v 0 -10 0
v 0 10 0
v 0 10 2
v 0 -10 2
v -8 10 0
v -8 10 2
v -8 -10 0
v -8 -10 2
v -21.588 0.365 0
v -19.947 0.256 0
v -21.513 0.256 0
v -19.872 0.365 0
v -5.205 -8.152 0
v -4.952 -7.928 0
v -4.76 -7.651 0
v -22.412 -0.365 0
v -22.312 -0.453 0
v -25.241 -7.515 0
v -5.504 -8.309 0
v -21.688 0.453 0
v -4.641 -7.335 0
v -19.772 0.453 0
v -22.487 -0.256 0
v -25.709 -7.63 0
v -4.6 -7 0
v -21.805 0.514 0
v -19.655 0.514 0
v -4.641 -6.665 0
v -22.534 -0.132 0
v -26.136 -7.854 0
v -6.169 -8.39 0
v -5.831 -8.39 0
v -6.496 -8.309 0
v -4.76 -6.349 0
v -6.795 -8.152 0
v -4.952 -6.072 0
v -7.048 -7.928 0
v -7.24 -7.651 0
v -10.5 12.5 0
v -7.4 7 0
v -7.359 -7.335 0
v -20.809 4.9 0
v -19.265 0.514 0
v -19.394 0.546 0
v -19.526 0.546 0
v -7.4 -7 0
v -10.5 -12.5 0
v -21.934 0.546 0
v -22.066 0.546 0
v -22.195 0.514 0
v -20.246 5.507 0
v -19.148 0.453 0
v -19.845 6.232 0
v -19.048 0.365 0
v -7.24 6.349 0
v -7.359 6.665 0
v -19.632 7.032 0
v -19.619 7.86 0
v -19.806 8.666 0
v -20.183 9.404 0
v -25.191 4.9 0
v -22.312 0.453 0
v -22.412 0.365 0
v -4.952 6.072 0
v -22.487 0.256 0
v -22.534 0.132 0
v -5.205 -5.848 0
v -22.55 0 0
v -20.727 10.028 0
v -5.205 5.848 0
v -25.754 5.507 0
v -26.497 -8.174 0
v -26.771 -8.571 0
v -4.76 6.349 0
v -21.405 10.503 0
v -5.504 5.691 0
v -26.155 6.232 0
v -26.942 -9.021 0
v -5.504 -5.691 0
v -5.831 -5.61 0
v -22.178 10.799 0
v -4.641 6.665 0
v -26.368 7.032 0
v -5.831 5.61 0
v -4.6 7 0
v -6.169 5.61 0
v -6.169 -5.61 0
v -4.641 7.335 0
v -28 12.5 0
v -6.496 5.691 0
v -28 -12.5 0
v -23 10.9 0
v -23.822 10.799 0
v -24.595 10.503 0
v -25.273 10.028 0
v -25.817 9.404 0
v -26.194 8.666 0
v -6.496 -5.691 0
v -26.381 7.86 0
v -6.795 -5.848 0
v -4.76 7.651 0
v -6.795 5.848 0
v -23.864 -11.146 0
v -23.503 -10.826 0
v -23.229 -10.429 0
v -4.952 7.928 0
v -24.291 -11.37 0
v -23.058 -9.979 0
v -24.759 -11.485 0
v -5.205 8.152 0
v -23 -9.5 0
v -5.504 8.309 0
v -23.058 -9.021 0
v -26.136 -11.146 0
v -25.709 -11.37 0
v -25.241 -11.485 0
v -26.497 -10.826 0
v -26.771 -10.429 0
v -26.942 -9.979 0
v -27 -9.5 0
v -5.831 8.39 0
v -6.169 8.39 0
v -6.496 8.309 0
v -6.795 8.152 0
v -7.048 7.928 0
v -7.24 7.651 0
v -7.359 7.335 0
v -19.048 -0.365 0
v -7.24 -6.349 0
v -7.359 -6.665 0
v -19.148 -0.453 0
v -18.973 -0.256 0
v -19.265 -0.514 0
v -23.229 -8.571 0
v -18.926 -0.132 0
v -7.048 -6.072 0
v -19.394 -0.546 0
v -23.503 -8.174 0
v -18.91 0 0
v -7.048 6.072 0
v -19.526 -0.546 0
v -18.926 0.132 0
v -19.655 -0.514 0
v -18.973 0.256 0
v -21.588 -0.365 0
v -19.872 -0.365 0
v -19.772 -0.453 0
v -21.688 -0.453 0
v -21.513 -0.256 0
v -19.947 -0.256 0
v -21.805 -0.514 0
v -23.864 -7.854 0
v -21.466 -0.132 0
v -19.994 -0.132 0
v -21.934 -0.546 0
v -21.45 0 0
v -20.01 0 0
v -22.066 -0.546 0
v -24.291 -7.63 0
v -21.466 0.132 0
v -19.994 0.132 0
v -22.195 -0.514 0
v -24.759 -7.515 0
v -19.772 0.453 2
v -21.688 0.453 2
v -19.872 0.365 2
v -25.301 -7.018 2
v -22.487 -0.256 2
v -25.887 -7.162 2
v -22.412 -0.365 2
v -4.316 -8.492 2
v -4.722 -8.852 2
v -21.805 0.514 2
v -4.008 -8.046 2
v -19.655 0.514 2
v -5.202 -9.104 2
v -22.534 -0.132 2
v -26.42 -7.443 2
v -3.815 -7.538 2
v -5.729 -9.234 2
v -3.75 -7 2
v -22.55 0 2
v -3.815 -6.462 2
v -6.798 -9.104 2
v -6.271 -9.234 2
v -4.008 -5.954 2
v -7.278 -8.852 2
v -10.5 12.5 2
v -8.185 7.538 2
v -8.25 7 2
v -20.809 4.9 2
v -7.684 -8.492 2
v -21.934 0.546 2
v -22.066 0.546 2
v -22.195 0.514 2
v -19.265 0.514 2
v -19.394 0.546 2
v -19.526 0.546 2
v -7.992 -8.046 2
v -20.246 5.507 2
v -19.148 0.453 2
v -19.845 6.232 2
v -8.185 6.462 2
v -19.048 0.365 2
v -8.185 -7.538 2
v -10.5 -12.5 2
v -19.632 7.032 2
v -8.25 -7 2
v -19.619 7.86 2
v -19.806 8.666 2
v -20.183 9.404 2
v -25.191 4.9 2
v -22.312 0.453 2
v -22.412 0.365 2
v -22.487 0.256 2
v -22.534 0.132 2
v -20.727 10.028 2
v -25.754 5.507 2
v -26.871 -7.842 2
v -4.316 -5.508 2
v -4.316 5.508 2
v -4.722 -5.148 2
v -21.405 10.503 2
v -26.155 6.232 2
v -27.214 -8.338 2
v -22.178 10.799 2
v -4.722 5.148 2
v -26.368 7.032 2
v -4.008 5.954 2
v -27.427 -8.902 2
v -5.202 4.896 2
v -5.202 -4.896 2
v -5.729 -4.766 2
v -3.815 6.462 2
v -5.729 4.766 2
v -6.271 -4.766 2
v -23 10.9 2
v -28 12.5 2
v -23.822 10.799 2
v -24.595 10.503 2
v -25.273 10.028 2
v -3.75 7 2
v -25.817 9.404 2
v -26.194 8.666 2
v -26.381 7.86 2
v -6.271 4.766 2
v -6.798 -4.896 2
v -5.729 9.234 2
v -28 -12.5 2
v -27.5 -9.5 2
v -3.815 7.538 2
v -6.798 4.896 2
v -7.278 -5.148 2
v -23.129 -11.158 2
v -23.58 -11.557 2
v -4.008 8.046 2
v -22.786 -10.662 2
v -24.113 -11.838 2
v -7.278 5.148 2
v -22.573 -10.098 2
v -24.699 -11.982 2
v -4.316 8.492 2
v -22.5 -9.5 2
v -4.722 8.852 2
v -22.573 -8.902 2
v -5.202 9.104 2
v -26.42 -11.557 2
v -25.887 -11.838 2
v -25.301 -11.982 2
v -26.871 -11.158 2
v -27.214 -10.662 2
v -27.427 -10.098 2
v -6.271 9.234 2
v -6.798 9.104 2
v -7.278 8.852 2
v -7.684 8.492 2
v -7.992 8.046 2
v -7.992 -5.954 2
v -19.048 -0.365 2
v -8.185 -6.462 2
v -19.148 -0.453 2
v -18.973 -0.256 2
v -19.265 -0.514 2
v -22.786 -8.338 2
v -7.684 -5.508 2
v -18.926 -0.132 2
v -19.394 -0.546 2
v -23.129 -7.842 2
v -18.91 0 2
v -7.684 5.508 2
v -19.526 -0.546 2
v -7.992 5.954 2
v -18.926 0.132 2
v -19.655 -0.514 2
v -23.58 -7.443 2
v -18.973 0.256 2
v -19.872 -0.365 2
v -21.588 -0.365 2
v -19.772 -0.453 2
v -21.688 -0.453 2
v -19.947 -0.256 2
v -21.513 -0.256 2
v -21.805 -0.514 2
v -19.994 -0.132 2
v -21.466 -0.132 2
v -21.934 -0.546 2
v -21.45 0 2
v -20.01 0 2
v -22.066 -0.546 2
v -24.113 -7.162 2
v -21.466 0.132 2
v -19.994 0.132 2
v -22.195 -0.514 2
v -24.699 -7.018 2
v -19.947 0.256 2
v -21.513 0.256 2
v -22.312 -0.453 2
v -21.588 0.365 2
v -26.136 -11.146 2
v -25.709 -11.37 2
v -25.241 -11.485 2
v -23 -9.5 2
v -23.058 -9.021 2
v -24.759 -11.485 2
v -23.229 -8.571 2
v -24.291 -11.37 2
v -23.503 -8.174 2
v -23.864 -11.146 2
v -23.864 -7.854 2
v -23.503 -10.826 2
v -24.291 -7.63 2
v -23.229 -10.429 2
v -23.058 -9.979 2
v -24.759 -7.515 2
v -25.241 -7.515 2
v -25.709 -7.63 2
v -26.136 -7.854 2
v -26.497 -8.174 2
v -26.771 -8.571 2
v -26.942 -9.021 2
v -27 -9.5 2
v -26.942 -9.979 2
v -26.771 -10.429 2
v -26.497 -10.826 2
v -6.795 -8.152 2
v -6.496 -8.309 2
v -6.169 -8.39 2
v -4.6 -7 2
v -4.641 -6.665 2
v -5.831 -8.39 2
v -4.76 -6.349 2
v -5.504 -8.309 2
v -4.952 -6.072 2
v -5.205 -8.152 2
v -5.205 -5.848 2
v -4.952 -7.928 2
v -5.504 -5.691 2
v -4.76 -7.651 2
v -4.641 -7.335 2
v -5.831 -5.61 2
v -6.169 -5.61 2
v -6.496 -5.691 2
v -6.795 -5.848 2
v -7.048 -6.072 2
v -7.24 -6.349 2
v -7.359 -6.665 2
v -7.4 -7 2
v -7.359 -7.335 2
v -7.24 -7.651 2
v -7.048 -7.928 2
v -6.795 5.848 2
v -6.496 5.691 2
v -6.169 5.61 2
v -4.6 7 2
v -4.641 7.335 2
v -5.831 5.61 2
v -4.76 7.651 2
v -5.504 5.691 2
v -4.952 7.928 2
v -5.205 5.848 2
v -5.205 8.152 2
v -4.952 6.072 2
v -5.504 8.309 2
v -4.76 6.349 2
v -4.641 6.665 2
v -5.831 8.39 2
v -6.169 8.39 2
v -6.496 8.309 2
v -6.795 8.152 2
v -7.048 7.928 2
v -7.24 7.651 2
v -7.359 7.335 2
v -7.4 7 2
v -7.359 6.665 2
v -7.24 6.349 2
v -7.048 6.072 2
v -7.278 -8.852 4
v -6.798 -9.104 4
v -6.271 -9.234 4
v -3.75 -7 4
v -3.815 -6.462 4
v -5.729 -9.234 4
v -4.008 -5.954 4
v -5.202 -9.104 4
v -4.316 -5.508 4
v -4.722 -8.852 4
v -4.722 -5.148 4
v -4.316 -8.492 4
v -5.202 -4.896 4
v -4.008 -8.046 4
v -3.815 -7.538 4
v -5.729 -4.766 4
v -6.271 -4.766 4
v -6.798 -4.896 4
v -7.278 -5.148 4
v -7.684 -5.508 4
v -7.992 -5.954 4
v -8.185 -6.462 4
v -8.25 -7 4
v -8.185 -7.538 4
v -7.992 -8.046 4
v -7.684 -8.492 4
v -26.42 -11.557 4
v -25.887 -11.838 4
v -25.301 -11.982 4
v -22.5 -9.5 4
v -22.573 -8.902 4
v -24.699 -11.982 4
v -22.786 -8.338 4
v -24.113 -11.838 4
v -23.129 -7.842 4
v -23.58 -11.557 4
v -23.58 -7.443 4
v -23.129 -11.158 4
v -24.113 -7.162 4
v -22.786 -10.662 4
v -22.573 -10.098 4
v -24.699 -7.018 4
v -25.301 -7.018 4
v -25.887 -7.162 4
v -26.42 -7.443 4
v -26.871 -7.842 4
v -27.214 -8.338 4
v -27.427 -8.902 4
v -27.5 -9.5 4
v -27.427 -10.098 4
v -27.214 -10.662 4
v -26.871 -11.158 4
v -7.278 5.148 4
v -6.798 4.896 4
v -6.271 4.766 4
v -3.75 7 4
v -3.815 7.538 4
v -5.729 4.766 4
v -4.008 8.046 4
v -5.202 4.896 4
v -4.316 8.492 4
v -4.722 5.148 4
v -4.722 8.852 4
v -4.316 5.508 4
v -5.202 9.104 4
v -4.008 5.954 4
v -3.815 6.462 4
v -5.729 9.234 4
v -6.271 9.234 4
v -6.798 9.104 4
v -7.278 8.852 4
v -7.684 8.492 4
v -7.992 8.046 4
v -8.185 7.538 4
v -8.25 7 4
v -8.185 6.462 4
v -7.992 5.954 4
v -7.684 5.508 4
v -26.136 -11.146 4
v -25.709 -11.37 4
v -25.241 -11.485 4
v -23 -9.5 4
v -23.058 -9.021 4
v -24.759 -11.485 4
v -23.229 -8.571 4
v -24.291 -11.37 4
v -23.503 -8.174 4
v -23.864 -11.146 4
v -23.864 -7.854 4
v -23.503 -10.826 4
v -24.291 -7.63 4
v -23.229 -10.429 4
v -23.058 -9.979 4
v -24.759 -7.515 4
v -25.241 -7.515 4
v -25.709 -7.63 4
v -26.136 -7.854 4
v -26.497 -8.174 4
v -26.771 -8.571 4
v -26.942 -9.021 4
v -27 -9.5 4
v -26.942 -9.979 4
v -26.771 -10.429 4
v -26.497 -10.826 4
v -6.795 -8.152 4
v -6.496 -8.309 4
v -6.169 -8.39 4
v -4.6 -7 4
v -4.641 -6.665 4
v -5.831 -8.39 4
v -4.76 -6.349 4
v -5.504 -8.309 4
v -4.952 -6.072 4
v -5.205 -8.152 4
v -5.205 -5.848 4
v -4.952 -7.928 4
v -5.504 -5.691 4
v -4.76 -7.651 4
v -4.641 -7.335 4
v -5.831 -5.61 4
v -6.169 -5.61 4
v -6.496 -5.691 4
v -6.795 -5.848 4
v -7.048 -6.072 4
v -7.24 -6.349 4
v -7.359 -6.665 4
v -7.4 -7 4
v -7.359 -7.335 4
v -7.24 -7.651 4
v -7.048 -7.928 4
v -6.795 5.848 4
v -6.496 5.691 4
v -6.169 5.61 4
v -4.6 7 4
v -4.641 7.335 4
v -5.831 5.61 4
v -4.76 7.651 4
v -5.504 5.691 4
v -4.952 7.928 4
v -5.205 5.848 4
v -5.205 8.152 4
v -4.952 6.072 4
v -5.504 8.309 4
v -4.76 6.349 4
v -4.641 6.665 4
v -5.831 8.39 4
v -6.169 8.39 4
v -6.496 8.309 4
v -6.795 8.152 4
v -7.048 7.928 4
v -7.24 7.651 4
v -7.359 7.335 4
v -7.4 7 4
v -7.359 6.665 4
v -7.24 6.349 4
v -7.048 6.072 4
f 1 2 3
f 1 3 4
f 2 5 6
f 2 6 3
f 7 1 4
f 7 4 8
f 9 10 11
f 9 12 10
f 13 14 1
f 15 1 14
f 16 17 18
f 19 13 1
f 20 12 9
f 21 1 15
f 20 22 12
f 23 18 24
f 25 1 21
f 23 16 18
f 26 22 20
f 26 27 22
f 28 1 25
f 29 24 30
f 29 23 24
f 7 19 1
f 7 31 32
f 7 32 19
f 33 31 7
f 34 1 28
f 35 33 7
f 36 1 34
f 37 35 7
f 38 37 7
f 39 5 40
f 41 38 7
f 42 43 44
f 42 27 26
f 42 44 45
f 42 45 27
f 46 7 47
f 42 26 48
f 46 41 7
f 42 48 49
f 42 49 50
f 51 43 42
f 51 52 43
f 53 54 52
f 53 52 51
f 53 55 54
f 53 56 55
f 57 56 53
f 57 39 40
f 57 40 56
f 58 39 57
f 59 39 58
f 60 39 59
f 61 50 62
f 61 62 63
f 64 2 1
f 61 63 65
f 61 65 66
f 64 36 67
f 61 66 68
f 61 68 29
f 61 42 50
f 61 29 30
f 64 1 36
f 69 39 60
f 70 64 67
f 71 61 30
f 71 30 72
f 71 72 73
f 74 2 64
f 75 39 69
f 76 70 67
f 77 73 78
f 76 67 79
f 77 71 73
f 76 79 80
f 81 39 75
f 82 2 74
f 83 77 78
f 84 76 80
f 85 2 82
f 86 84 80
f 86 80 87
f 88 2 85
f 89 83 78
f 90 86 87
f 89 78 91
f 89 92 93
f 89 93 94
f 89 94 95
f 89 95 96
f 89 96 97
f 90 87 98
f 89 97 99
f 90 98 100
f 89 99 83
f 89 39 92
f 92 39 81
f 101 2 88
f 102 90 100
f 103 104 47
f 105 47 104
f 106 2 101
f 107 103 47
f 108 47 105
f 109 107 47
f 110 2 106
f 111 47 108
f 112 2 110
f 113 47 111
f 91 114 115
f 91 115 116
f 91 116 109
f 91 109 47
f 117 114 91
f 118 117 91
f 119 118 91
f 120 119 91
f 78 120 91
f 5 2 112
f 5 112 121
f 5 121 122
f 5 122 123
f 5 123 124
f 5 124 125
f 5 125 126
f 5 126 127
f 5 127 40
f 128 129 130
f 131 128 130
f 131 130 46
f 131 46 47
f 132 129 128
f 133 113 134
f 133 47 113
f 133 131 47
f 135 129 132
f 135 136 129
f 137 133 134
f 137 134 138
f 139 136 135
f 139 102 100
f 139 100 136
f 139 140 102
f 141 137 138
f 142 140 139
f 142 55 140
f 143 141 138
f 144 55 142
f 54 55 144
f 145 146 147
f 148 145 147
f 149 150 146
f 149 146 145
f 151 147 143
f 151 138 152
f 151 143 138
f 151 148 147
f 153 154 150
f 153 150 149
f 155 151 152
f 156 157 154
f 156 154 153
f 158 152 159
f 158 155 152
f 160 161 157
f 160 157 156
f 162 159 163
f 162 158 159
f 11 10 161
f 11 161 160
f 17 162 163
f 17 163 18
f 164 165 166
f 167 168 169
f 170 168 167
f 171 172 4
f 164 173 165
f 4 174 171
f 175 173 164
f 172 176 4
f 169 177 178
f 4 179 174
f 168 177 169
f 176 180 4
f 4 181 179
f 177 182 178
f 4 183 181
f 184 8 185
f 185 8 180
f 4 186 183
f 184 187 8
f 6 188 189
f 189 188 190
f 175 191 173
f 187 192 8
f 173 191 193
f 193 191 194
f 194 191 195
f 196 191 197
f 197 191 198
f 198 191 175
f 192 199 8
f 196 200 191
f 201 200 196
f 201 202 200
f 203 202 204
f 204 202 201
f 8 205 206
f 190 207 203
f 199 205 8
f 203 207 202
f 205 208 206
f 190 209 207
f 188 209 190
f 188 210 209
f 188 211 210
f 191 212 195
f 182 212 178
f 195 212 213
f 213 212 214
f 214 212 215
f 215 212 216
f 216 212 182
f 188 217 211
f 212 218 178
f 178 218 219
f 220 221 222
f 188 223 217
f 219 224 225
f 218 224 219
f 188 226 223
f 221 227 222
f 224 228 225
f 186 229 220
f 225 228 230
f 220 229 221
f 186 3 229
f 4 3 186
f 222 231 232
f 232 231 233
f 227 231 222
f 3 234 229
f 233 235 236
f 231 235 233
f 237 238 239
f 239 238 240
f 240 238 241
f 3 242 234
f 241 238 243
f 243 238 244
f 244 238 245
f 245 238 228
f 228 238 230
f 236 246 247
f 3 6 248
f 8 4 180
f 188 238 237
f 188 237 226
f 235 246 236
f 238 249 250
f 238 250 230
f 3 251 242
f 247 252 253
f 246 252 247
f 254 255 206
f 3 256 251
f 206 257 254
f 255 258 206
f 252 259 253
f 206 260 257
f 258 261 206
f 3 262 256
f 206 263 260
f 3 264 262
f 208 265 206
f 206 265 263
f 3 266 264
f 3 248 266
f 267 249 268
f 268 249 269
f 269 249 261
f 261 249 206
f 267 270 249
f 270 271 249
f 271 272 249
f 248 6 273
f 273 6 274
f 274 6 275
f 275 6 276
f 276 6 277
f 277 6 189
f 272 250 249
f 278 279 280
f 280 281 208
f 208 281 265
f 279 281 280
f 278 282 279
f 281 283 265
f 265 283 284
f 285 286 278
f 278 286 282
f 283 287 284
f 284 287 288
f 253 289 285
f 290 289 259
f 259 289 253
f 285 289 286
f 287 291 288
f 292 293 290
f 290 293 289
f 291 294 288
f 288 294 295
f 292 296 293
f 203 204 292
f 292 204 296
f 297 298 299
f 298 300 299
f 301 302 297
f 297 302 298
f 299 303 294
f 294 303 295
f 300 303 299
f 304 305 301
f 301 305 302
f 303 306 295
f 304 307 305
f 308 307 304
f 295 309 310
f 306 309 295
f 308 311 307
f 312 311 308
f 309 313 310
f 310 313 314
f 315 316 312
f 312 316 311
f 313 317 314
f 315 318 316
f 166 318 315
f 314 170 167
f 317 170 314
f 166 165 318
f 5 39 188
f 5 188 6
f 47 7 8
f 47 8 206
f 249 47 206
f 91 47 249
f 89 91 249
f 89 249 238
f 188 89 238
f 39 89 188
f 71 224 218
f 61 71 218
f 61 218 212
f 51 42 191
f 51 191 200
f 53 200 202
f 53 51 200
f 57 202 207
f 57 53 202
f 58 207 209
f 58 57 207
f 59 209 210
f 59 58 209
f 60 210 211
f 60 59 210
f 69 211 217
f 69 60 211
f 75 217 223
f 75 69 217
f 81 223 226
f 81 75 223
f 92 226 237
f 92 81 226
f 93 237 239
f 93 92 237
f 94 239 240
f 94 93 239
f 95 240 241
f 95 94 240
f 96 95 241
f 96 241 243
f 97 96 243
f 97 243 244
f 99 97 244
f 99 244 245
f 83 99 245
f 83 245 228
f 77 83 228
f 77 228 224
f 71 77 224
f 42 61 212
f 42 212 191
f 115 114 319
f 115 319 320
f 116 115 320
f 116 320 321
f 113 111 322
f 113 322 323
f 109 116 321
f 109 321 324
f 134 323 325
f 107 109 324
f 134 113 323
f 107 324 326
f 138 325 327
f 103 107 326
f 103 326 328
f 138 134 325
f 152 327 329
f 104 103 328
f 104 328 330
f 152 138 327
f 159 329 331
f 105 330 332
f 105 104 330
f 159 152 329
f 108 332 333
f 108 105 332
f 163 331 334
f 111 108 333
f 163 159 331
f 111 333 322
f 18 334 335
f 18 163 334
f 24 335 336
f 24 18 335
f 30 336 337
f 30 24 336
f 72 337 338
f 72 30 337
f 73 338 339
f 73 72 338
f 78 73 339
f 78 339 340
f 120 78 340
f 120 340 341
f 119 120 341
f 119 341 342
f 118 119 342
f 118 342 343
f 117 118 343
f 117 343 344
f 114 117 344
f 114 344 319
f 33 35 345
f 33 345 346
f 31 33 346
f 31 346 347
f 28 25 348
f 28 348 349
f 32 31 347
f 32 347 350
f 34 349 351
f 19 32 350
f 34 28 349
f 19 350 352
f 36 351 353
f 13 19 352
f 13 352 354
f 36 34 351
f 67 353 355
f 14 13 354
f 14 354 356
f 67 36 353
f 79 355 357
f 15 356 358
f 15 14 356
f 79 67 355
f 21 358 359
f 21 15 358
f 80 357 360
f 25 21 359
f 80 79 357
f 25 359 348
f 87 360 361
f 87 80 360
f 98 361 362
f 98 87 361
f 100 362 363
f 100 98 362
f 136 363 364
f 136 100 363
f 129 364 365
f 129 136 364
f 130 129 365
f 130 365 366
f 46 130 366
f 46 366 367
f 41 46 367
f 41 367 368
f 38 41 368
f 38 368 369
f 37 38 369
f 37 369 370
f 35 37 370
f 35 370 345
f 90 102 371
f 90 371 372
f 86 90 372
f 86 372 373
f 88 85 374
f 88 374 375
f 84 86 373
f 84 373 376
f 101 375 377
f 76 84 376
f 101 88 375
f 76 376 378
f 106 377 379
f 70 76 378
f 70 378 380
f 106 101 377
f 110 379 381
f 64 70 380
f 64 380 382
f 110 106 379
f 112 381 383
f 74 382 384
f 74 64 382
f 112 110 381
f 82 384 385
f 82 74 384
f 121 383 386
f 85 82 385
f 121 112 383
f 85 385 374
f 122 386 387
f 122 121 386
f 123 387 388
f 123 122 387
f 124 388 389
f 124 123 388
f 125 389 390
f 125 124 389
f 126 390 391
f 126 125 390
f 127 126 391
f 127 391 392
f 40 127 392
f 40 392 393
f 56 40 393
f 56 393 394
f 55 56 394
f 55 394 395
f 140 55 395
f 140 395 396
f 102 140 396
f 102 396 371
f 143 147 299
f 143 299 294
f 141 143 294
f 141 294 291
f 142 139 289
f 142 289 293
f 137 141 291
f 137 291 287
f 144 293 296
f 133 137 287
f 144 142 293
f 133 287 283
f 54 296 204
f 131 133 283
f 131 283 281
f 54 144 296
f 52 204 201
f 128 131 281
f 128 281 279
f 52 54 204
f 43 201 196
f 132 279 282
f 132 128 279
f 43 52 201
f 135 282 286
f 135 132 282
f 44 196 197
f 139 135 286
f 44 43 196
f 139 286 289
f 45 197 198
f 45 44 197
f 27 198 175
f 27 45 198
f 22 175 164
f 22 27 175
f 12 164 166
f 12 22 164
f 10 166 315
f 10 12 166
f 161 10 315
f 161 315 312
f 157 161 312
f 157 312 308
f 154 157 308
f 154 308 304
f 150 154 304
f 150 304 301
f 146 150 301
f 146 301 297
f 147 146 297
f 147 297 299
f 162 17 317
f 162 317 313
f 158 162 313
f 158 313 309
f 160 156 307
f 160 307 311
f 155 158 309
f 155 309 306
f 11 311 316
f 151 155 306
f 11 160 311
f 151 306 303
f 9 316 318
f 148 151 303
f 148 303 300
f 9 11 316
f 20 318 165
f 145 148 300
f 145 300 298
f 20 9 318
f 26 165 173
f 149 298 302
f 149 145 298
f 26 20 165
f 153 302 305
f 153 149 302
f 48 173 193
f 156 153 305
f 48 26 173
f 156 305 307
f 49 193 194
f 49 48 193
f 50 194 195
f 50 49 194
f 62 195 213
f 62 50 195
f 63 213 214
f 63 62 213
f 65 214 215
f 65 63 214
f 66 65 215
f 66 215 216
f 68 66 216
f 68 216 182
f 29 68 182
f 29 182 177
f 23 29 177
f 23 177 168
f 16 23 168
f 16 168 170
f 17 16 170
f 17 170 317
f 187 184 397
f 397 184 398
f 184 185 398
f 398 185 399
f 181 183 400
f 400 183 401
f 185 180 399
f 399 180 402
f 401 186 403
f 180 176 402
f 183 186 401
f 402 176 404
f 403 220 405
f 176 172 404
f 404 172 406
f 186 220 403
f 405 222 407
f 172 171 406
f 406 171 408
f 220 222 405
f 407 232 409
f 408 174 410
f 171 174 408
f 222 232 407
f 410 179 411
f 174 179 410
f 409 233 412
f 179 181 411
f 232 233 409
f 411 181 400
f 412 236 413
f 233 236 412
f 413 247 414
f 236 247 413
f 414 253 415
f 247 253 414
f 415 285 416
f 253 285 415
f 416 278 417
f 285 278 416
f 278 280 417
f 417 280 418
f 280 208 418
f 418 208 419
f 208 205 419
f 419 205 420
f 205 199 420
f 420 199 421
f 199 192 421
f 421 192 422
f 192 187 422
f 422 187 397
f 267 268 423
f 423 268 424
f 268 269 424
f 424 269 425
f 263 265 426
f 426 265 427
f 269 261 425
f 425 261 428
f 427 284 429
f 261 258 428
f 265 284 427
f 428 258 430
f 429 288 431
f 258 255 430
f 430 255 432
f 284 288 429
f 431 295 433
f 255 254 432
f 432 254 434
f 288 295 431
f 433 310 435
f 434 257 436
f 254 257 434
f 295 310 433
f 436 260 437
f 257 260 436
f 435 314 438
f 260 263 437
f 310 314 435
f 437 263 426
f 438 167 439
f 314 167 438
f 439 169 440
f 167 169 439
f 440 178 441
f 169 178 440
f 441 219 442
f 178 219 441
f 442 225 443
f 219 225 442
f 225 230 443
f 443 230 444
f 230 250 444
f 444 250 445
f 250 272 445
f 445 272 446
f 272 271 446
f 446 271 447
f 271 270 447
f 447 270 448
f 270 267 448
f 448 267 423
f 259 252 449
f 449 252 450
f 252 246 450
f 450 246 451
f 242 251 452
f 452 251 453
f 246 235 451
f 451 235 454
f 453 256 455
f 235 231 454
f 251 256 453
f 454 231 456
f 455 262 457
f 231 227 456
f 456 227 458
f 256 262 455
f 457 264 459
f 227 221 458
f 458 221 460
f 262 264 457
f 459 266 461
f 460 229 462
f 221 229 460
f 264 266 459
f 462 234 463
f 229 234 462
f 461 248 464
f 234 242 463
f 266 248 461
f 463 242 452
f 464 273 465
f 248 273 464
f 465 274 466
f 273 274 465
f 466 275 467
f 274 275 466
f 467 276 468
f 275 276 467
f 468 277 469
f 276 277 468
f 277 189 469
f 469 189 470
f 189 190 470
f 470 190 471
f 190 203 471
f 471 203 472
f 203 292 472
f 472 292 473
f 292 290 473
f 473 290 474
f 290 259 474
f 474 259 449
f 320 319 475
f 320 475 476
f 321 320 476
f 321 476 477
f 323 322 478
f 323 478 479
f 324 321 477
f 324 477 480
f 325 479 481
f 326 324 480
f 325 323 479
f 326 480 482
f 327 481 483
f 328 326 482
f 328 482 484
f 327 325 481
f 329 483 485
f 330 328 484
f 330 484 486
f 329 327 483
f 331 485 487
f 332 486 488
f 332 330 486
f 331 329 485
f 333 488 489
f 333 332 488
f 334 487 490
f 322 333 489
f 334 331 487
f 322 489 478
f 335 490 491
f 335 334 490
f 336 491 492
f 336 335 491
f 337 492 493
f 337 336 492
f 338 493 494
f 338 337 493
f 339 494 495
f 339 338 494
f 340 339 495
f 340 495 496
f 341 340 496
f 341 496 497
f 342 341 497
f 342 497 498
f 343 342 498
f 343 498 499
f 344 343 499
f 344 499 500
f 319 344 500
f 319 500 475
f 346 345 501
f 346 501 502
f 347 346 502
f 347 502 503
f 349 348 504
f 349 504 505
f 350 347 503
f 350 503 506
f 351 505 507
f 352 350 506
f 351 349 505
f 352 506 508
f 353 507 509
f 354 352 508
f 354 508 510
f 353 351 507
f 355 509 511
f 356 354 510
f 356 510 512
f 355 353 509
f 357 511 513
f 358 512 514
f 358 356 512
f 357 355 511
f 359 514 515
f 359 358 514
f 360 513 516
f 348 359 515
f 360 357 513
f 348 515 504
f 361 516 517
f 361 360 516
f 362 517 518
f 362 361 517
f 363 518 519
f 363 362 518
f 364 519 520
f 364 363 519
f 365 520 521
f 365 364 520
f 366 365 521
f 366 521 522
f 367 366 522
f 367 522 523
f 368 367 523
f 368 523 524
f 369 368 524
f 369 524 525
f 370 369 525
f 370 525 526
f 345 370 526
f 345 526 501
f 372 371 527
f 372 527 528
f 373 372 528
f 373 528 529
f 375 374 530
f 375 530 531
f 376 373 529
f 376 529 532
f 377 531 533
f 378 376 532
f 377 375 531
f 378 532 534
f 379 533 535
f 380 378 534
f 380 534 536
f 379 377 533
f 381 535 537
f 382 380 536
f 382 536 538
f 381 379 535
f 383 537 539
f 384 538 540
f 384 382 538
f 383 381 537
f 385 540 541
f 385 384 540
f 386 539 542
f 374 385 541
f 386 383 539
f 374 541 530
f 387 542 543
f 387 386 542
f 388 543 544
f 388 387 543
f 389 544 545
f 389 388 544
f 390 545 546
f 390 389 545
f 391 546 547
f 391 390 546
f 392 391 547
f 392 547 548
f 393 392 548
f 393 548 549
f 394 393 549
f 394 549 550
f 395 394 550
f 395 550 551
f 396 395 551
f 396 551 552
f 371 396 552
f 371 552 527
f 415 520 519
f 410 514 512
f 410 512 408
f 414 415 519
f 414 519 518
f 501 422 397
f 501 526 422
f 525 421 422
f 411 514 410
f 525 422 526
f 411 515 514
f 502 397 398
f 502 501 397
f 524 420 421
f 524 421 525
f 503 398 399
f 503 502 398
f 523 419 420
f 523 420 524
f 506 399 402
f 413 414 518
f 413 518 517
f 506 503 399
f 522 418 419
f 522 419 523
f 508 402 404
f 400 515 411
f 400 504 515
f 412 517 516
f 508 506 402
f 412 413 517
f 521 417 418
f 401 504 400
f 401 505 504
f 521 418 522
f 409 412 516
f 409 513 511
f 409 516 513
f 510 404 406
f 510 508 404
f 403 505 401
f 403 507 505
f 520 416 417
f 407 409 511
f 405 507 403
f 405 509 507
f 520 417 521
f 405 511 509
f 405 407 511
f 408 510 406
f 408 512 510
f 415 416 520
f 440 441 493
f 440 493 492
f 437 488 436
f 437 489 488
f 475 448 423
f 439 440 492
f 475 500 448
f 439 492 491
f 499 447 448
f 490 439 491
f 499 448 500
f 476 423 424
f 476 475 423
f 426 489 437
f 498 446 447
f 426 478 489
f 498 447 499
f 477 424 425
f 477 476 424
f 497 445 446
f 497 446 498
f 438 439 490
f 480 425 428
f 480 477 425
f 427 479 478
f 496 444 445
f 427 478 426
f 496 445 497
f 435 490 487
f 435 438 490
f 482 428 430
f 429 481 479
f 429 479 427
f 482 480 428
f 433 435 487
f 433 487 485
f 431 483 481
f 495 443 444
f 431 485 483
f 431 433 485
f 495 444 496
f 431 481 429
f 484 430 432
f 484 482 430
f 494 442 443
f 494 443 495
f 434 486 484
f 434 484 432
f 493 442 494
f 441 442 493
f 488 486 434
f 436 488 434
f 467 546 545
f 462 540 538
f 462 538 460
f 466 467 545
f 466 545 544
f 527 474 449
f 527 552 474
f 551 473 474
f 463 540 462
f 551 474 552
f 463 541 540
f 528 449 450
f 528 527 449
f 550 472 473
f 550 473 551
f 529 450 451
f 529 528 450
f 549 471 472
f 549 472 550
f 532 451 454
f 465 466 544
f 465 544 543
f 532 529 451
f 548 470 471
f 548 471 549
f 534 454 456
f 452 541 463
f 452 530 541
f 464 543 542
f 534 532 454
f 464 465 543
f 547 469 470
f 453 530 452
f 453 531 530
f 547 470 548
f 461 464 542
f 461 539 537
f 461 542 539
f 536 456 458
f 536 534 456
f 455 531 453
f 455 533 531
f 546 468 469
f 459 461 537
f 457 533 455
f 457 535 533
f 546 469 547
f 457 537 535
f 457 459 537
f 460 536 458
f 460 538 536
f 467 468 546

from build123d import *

# Parameters (mm, degrees)
SKETCH_R      = 1.4
SKETCH_R_2    = 2
SKETCH_R_3    = 0.55
PAD_DEPTH     = 2
SKETCH001_R   = 2.5
SKETCH001_R_2 = 2
SKETCH001_R_3 = 2.25
SKETCH001_R_4 = 1.4
PAD001_DEPTH  = 2


with BuildPart() as part:
    # Sketch → Pad (new body)
    with BuildSketch(Plane.XY):
        Polygon((0, 10), (0, -10), (-8, -10), (-10.5, -12.5), (-28, -12.5), (-28, 12.5), (-10.5, 12.5), (-8, 10), align=None)
        with Locations((-6, 7)):
            Circle(SKETCH_R, mode=Mode.SUBTRACT)
        with Locations((-6, -7)):
            Circle(SKETCH_R, mode=Mode.SUBTRACT)
        with Locations((-25, -9.5)):
            Circle(SKETCH_R_2, mode=Mode.SUBTRACT)
        with Locations((-22, 0)):
            Circle(SKETCH_R_3, mode=Mode.SUBTRACT)
        with Locations((-19.46, 0)):
            Circle(SKETCH_R_3, mode=Mode.SUBTRACT)
        with BuildLine():
            ThreePointArc((-20.80911, 4.9), (-23, 10.9), (-25.19089, 4.9))
            Line((-25.19089, 4.9), (-20.80911, 4.9))
        make_face(mode=Mode.SUBTRACT)
    extrude(amount=PAD_DEPTH)

    # Sketch001 (on DatumPlane) → Pad001 (join)
    with BuildSketch(Plane.XY.offset(2)):
        with Locations((-25, -9.5)):
            Circle(SKETCH001_R)
        with Locations((-25, -9.5)):
            Circle(SKETCH001_R_2, mode=Mode.SUBTRACT)
        with Locations((-6, -7)):
            Circle(SKETCH001_R_3)
        with Locations((-6, -7)):
            Circle(SKETCH001_R_4, mode=Mode.SUBTRACT)
        with Locations((-6, 7)):
            Circle(SKETCH001_R_3)
        with Locations((-6, 7)):
            Circle(SKETCH001_R_4, mode=Mode.SUBTRACT)
    extrude(amount=PAD001_DEPTH)


solid = part.part
